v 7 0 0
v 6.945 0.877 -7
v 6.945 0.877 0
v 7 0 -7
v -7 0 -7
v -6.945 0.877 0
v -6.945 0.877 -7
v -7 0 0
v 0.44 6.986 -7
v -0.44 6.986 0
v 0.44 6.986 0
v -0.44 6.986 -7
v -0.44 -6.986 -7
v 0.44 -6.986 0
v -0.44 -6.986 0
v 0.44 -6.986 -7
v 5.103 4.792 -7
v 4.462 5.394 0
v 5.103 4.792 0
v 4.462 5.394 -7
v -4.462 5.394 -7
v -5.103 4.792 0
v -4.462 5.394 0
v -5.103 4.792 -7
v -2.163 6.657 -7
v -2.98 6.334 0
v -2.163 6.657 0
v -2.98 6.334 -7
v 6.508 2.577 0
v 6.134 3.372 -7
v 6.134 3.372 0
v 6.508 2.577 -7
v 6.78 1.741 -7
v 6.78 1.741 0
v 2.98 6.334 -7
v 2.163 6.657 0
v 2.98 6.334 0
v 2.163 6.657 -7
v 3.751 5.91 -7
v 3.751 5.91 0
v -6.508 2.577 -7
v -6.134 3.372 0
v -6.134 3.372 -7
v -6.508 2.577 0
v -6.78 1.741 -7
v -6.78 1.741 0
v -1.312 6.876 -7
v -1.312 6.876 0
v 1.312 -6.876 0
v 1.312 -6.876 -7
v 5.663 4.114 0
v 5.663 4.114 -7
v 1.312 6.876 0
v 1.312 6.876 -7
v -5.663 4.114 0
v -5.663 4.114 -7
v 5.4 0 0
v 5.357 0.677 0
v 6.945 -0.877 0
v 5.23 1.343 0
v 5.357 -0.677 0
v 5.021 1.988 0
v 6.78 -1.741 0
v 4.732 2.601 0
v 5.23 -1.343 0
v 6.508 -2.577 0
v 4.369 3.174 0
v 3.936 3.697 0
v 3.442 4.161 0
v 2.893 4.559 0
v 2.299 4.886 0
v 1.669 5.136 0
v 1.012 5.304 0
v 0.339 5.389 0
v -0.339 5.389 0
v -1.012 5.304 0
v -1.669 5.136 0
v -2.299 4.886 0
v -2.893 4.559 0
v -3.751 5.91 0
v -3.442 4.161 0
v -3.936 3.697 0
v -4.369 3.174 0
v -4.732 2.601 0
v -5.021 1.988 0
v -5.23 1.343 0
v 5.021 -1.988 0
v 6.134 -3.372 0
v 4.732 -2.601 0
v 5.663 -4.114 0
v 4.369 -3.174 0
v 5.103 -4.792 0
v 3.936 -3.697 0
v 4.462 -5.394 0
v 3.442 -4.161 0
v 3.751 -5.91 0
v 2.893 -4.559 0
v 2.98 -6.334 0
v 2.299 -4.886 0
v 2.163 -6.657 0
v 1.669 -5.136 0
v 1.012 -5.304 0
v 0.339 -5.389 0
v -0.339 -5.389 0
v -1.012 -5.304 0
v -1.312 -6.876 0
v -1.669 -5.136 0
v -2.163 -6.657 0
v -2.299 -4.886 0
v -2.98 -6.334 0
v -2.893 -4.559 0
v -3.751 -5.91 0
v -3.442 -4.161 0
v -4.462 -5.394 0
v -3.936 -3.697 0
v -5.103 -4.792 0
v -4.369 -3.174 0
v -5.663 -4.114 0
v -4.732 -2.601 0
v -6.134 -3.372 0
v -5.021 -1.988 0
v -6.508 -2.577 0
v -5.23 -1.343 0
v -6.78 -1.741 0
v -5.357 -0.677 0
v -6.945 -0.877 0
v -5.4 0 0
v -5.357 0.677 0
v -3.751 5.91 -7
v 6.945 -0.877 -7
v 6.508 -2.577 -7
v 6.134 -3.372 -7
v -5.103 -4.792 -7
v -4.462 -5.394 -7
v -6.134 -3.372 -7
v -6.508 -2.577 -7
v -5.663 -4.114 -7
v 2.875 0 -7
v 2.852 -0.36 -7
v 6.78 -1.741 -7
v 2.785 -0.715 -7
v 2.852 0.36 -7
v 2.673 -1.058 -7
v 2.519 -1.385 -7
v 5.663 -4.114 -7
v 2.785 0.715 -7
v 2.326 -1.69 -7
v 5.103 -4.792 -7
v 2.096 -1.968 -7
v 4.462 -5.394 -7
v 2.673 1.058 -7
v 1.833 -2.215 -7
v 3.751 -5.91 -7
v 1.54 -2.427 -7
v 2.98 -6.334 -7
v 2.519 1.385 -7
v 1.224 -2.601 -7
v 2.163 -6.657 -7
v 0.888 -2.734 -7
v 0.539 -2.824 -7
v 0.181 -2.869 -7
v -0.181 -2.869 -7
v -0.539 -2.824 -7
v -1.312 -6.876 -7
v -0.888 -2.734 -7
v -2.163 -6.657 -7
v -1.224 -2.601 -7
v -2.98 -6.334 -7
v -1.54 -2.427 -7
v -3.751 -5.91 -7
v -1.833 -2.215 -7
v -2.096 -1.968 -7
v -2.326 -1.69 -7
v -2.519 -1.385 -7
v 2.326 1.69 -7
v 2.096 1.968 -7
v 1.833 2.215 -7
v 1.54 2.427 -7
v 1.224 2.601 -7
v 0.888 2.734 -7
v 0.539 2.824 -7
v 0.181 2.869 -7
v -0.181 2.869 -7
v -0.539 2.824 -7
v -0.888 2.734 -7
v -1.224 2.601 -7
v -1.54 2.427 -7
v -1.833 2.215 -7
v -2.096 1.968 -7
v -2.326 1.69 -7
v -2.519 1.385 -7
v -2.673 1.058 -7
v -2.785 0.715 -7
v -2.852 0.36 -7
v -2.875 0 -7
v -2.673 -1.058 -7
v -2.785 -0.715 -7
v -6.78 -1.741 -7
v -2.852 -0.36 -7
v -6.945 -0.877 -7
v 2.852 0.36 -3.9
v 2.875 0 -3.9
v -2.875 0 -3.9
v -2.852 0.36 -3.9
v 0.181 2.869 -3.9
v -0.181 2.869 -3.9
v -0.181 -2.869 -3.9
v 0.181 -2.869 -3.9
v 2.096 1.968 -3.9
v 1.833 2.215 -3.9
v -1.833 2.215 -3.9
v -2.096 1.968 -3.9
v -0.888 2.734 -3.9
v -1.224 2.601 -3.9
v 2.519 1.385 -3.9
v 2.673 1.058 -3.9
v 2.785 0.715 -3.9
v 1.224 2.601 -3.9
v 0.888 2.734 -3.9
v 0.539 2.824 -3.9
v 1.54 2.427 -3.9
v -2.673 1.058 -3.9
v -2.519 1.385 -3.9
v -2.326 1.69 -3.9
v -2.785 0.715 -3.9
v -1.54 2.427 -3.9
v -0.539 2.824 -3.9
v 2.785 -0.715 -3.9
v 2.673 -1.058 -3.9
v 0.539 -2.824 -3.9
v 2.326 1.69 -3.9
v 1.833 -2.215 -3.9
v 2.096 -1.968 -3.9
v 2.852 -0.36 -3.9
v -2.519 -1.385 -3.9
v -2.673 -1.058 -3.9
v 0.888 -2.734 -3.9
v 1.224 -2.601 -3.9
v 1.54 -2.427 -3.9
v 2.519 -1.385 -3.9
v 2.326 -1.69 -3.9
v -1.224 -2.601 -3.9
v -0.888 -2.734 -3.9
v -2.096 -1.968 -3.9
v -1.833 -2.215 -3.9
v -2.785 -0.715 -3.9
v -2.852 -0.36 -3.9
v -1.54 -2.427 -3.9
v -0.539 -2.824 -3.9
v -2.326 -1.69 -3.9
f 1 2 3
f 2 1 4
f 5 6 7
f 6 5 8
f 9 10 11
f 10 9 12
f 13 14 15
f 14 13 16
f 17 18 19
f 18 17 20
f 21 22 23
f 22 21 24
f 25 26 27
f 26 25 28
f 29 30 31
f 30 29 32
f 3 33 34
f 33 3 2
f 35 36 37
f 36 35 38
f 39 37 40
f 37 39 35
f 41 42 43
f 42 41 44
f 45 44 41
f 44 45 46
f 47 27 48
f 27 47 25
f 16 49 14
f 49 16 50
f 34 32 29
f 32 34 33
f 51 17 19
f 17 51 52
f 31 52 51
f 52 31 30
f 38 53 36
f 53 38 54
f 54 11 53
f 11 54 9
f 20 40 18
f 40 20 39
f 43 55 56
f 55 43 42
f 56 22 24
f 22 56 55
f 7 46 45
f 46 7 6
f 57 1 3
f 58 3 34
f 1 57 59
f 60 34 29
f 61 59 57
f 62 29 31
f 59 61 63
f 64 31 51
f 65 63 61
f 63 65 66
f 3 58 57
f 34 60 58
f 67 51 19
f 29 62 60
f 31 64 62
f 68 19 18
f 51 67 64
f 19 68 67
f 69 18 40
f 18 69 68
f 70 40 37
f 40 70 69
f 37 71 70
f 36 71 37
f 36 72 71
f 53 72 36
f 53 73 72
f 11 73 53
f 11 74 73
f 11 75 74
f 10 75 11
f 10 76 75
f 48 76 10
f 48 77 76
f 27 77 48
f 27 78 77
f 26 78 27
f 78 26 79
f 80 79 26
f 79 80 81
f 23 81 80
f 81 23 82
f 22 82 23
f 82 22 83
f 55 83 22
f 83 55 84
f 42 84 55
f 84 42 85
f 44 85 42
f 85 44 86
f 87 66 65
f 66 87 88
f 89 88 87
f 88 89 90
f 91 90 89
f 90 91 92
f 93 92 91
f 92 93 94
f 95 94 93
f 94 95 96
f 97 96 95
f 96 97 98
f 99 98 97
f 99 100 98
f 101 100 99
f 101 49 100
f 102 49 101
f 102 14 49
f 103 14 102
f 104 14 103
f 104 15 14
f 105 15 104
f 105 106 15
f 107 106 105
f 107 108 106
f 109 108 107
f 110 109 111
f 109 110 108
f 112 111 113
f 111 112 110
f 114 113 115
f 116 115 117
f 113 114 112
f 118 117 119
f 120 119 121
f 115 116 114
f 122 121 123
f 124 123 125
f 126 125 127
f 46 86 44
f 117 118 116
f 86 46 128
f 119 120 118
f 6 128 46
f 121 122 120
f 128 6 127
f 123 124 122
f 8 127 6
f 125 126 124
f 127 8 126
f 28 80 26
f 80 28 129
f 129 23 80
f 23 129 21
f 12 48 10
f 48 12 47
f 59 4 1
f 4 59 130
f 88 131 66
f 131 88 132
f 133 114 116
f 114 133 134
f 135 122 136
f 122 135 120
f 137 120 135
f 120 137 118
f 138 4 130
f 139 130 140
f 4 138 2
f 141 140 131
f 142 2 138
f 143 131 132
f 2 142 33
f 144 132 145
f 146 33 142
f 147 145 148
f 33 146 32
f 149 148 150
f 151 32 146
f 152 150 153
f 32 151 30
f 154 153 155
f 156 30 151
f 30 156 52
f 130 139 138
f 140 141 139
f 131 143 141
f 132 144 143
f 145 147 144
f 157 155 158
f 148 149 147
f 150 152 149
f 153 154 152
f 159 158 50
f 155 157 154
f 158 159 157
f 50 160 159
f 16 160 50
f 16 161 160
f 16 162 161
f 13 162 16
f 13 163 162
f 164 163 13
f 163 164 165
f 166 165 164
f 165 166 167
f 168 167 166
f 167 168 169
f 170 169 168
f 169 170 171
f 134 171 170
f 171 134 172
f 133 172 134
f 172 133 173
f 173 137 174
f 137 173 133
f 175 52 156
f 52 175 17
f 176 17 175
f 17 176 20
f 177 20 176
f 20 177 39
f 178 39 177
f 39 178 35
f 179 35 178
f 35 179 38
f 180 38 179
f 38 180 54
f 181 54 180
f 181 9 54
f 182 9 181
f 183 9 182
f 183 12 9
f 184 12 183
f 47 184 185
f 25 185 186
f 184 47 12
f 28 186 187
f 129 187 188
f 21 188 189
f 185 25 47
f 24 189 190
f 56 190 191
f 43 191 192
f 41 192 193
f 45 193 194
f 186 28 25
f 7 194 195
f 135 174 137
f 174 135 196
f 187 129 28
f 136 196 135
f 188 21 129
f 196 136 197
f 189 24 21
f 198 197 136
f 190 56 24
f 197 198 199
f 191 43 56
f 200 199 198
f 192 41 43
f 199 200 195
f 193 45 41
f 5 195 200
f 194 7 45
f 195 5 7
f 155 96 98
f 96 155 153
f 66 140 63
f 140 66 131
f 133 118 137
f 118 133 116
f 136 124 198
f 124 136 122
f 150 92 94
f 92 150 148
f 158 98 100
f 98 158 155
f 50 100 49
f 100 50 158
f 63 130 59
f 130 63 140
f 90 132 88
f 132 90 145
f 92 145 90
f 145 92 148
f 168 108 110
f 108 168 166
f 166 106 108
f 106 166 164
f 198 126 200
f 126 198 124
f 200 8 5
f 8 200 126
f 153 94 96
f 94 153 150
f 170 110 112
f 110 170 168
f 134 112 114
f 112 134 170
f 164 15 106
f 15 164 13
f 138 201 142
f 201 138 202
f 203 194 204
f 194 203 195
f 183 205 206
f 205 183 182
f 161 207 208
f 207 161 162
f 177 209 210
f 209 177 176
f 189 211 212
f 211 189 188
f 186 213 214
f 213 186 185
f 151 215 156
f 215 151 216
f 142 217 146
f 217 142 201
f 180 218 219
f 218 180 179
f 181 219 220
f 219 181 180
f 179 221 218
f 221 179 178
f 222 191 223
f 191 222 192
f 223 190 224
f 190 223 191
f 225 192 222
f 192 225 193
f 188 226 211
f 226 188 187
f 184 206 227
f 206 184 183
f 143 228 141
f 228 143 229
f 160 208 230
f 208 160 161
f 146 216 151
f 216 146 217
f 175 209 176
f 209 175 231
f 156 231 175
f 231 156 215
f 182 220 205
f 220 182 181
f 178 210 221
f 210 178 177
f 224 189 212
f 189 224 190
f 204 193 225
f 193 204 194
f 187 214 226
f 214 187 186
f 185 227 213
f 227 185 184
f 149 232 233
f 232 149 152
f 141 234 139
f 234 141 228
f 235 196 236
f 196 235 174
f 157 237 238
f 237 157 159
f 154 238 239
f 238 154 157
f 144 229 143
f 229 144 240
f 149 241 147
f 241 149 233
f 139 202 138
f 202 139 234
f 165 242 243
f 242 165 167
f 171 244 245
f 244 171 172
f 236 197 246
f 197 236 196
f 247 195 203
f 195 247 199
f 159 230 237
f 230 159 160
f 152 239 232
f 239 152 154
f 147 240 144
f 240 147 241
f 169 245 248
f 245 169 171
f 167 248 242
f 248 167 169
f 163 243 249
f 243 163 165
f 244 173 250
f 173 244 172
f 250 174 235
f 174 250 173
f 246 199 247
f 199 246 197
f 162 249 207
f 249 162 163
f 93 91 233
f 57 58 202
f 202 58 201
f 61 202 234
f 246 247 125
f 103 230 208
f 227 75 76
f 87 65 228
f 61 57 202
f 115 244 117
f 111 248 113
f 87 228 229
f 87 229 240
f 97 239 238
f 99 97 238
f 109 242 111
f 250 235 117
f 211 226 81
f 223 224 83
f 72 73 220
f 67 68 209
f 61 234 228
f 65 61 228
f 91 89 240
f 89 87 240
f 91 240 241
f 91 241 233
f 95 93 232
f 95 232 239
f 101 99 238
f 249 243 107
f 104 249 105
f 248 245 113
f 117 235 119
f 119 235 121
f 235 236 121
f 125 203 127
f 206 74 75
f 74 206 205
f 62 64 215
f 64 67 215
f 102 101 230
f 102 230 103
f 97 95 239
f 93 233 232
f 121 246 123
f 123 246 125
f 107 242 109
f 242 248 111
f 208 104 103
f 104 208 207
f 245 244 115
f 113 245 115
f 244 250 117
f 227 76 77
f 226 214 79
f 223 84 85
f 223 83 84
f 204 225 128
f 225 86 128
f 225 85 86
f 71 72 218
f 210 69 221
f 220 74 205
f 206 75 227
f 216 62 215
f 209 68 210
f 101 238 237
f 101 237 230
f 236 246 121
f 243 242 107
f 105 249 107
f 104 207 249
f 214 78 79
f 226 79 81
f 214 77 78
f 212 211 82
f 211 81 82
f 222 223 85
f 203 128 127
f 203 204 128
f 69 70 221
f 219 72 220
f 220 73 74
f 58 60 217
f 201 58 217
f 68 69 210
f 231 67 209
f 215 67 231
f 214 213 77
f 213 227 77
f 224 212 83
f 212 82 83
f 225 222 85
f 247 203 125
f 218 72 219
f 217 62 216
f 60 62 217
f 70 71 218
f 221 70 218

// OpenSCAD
$fn = 50;


difference() {
	union() {
		translate(v = [0, 0, -7.0000000000]) {
			cylinder(h = 7, r = 7.0000000000);
		}
		translate(v = [0, 0, -9.0000000000]) {
			cylinder(h = 9, r = 2.8750000000);
		}
	}
	union() {
		translate(v = [0, 0, 0]) {
			rotate(a = [0, 0, 0]) {
				difference() {
					union() {
						translate(v = [0, 0, -9.0000000000]) {
							cylinder(h = 9, r = 2.6000000000);
						}
						translate(v = [0, 0, -3.9000000000]) {
							cylinder(h = 3.9000000000, r1 = 2.8750000000, r2 = 5.4000000000);
						}
						translate(v = [0, 0, -9.0000000000]) {
							cylinder(h = 9, r = 2.8750000000);
						}
						translate(v = [0, 0, -9.0000000000]) {
							cylinder(h = 9, r = 2.6000000000);
						}
					}
					union();
				}
			}
		}
	}
}
